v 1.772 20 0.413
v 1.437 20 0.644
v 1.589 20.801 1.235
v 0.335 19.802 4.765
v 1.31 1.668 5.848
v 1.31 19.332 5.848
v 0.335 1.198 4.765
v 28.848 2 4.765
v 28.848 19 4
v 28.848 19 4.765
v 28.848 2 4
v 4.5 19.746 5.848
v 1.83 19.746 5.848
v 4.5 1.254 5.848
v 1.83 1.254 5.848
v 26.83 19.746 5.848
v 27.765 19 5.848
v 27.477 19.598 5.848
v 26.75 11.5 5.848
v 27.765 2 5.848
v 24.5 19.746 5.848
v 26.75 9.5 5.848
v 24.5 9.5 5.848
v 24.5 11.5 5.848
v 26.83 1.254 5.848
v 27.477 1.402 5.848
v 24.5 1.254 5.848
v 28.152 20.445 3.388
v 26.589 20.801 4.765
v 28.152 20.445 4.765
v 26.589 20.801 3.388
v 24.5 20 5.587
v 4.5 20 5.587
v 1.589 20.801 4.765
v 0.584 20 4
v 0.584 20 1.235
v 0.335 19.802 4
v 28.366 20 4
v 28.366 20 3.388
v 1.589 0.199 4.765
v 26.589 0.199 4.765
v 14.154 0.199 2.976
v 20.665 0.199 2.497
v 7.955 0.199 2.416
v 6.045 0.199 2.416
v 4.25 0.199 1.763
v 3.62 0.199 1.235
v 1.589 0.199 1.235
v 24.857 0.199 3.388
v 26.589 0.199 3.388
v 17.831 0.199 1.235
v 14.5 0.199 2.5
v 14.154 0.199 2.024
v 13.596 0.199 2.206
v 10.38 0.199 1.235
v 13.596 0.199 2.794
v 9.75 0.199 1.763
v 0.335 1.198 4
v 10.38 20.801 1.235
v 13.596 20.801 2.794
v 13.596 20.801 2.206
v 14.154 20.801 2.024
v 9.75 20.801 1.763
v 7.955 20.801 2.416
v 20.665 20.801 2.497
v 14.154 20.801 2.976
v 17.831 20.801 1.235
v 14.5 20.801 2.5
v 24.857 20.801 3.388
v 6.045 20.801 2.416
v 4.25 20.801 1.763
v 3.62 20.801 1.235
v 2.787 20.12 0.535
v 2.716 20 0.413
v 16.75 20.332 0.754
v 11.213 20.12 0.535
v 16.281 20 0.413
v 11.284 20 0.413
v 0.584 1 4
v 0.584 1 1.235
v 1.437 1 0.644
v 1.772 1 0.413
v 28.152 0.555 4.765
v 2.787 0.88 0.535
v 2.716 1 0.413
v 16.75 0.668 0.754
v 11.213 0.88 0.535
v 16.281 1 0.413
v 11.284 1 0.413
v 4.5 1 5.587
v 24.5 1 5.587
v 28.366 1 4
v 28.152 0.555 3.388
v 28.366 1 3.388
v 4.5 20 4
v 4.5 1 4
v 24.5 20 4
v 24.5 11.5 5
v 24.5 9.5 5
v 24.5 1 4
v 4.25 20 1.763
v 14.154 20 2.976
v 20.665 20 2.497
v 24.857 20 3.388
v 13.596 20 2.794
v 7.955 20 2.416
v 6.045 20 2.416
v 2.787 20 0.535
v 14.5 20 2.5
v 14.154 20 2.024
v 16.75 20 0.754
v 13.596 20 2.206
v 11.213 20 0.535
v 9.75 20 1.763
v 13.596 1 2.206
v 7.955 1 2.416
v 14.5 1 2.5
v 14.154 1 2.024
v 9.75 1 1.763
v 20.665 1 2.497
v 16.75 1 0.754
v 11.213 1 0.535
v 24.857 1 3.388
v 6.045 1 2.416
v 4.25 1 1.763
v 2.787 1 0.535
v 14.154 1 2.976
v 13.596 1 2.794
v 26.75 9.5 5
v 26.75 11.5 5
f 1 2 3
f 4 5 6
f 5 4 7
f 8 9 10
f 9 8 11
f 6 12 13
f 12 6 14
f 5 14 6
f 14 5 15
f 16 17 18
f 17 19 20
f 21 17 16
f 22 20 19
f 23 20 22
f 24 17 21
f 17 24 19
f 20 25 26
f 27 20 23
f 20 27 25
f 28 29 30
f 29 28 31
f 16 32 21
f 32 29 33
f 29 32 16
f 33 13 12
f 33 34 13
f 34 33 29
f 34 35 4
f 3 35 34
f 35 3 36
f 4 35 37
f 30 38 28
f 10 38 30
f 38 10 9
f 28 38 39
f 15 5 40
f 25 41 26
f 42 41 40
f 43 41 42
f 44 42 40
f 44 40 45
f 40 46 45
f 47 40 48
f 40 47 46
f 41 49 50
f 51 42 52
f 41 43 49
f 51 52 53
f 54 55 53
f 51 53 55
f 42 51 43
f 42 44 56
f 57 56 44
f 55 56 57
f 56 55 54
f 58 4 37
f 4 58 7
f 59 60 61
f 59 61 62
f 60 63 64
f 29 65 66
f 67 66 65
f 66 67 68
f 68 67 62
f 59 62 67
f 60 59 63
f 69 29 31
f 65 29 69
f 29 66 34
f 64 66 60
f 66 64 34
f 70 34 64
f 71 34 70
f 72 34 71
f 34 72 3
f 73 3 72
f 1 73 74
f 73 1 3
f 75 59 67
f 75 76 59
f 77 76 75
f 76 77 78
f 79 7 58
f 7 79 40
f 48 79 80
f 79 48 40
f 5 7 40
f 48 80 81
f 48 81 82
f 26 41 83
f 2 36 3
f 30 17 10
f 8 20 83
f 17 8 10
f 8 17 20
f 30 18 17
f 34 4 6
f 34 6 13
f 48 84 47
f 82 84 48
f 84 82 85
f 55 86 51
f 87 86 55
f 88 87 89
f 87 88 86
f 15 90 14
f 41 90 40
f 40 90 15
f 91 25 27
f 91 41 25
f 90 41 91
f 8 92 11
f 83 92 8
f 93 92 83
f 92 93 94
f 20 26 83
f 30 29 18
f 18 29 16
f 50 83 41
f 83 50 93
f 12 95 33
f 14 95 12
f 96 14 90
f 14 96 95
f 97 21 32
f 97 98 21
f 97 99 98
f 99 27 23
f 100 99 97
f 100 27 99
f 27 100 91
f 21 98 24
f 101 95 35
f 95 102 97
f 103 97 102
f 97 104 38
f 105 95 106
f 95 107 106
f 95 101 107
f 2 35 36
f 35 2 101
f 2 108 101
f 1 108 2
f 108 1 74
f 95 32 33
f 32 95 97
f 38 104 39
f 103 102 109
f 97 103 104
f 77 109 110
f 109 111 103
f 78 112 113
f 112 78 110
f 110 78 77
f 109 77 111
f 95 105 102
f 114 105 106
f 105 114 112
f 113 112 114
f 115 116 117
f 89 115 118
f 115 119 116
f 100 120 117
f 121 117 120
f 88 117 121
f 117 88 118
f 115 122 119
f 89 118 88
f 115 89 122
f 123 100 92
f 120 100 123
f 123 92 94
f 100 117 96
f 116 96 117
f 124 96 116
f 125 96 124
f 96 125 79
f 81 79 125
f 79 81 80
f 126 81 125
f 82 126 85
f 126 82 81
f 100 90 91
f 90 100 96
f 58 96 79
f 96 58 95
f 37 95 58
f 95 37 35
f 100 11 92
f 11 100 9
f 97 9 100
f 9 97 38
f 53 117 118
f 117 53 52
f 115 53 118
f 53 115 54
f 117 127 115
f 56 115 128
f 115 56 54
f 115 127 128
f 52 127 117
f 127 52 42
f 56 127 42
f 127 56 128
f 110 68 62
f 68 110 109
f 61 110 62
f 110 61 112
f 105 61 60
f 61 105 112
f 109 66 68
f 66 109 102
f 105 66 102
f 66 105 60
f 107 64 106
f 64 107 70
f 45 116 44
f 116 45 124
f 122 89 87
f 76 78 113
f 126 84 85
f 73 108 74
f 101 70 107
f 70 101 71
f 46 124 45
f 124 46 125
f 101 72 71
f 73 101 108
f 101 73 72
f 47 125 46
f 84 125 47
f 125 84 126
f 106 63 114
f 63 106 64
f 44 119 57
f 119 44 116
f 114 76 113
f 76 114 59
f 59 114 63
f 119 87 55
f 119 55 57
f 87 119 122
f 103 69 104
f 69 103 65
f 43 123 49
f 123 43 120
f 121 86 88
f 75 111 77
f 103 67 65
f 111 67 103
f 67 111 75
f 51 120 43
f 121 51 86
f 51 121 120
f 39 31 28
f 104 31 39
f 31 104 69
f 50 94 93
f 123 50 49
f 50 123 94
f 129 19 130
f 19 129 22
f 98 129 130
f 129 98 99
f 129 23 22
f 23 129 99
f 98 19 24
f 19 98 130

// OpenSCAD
  
difference() {
    union(){
        translate([2,2,2])
        minkowski(){
            //29,21,6
            cube([25,17,2]);
            sphere(r=2,center=true);
        }
    }
    
    translate([4.5,1,0])
    cube([20,19,6]);

    translate([0,1,0])
    cube([29,19,4]);

    translate([14,0,2.5])
    rotate([-90,0,0])
    cylinder(1,r=0.5,false);

    translate([14,20,2.5])
    rotate([-90,0,0])
    cylinder(1,r=0.5,false);

    translate([7,0,-3])
    rotate([-90,0,0])
    cylinder(30,r=5.5,false);

    translate([27,0,-17])
    rotate([-90,0,0])
    cylinder(30,r=20.5,false);

    translate([25.5,10.5,5.5])
    cube([2.5,2,1],center= true);
}
